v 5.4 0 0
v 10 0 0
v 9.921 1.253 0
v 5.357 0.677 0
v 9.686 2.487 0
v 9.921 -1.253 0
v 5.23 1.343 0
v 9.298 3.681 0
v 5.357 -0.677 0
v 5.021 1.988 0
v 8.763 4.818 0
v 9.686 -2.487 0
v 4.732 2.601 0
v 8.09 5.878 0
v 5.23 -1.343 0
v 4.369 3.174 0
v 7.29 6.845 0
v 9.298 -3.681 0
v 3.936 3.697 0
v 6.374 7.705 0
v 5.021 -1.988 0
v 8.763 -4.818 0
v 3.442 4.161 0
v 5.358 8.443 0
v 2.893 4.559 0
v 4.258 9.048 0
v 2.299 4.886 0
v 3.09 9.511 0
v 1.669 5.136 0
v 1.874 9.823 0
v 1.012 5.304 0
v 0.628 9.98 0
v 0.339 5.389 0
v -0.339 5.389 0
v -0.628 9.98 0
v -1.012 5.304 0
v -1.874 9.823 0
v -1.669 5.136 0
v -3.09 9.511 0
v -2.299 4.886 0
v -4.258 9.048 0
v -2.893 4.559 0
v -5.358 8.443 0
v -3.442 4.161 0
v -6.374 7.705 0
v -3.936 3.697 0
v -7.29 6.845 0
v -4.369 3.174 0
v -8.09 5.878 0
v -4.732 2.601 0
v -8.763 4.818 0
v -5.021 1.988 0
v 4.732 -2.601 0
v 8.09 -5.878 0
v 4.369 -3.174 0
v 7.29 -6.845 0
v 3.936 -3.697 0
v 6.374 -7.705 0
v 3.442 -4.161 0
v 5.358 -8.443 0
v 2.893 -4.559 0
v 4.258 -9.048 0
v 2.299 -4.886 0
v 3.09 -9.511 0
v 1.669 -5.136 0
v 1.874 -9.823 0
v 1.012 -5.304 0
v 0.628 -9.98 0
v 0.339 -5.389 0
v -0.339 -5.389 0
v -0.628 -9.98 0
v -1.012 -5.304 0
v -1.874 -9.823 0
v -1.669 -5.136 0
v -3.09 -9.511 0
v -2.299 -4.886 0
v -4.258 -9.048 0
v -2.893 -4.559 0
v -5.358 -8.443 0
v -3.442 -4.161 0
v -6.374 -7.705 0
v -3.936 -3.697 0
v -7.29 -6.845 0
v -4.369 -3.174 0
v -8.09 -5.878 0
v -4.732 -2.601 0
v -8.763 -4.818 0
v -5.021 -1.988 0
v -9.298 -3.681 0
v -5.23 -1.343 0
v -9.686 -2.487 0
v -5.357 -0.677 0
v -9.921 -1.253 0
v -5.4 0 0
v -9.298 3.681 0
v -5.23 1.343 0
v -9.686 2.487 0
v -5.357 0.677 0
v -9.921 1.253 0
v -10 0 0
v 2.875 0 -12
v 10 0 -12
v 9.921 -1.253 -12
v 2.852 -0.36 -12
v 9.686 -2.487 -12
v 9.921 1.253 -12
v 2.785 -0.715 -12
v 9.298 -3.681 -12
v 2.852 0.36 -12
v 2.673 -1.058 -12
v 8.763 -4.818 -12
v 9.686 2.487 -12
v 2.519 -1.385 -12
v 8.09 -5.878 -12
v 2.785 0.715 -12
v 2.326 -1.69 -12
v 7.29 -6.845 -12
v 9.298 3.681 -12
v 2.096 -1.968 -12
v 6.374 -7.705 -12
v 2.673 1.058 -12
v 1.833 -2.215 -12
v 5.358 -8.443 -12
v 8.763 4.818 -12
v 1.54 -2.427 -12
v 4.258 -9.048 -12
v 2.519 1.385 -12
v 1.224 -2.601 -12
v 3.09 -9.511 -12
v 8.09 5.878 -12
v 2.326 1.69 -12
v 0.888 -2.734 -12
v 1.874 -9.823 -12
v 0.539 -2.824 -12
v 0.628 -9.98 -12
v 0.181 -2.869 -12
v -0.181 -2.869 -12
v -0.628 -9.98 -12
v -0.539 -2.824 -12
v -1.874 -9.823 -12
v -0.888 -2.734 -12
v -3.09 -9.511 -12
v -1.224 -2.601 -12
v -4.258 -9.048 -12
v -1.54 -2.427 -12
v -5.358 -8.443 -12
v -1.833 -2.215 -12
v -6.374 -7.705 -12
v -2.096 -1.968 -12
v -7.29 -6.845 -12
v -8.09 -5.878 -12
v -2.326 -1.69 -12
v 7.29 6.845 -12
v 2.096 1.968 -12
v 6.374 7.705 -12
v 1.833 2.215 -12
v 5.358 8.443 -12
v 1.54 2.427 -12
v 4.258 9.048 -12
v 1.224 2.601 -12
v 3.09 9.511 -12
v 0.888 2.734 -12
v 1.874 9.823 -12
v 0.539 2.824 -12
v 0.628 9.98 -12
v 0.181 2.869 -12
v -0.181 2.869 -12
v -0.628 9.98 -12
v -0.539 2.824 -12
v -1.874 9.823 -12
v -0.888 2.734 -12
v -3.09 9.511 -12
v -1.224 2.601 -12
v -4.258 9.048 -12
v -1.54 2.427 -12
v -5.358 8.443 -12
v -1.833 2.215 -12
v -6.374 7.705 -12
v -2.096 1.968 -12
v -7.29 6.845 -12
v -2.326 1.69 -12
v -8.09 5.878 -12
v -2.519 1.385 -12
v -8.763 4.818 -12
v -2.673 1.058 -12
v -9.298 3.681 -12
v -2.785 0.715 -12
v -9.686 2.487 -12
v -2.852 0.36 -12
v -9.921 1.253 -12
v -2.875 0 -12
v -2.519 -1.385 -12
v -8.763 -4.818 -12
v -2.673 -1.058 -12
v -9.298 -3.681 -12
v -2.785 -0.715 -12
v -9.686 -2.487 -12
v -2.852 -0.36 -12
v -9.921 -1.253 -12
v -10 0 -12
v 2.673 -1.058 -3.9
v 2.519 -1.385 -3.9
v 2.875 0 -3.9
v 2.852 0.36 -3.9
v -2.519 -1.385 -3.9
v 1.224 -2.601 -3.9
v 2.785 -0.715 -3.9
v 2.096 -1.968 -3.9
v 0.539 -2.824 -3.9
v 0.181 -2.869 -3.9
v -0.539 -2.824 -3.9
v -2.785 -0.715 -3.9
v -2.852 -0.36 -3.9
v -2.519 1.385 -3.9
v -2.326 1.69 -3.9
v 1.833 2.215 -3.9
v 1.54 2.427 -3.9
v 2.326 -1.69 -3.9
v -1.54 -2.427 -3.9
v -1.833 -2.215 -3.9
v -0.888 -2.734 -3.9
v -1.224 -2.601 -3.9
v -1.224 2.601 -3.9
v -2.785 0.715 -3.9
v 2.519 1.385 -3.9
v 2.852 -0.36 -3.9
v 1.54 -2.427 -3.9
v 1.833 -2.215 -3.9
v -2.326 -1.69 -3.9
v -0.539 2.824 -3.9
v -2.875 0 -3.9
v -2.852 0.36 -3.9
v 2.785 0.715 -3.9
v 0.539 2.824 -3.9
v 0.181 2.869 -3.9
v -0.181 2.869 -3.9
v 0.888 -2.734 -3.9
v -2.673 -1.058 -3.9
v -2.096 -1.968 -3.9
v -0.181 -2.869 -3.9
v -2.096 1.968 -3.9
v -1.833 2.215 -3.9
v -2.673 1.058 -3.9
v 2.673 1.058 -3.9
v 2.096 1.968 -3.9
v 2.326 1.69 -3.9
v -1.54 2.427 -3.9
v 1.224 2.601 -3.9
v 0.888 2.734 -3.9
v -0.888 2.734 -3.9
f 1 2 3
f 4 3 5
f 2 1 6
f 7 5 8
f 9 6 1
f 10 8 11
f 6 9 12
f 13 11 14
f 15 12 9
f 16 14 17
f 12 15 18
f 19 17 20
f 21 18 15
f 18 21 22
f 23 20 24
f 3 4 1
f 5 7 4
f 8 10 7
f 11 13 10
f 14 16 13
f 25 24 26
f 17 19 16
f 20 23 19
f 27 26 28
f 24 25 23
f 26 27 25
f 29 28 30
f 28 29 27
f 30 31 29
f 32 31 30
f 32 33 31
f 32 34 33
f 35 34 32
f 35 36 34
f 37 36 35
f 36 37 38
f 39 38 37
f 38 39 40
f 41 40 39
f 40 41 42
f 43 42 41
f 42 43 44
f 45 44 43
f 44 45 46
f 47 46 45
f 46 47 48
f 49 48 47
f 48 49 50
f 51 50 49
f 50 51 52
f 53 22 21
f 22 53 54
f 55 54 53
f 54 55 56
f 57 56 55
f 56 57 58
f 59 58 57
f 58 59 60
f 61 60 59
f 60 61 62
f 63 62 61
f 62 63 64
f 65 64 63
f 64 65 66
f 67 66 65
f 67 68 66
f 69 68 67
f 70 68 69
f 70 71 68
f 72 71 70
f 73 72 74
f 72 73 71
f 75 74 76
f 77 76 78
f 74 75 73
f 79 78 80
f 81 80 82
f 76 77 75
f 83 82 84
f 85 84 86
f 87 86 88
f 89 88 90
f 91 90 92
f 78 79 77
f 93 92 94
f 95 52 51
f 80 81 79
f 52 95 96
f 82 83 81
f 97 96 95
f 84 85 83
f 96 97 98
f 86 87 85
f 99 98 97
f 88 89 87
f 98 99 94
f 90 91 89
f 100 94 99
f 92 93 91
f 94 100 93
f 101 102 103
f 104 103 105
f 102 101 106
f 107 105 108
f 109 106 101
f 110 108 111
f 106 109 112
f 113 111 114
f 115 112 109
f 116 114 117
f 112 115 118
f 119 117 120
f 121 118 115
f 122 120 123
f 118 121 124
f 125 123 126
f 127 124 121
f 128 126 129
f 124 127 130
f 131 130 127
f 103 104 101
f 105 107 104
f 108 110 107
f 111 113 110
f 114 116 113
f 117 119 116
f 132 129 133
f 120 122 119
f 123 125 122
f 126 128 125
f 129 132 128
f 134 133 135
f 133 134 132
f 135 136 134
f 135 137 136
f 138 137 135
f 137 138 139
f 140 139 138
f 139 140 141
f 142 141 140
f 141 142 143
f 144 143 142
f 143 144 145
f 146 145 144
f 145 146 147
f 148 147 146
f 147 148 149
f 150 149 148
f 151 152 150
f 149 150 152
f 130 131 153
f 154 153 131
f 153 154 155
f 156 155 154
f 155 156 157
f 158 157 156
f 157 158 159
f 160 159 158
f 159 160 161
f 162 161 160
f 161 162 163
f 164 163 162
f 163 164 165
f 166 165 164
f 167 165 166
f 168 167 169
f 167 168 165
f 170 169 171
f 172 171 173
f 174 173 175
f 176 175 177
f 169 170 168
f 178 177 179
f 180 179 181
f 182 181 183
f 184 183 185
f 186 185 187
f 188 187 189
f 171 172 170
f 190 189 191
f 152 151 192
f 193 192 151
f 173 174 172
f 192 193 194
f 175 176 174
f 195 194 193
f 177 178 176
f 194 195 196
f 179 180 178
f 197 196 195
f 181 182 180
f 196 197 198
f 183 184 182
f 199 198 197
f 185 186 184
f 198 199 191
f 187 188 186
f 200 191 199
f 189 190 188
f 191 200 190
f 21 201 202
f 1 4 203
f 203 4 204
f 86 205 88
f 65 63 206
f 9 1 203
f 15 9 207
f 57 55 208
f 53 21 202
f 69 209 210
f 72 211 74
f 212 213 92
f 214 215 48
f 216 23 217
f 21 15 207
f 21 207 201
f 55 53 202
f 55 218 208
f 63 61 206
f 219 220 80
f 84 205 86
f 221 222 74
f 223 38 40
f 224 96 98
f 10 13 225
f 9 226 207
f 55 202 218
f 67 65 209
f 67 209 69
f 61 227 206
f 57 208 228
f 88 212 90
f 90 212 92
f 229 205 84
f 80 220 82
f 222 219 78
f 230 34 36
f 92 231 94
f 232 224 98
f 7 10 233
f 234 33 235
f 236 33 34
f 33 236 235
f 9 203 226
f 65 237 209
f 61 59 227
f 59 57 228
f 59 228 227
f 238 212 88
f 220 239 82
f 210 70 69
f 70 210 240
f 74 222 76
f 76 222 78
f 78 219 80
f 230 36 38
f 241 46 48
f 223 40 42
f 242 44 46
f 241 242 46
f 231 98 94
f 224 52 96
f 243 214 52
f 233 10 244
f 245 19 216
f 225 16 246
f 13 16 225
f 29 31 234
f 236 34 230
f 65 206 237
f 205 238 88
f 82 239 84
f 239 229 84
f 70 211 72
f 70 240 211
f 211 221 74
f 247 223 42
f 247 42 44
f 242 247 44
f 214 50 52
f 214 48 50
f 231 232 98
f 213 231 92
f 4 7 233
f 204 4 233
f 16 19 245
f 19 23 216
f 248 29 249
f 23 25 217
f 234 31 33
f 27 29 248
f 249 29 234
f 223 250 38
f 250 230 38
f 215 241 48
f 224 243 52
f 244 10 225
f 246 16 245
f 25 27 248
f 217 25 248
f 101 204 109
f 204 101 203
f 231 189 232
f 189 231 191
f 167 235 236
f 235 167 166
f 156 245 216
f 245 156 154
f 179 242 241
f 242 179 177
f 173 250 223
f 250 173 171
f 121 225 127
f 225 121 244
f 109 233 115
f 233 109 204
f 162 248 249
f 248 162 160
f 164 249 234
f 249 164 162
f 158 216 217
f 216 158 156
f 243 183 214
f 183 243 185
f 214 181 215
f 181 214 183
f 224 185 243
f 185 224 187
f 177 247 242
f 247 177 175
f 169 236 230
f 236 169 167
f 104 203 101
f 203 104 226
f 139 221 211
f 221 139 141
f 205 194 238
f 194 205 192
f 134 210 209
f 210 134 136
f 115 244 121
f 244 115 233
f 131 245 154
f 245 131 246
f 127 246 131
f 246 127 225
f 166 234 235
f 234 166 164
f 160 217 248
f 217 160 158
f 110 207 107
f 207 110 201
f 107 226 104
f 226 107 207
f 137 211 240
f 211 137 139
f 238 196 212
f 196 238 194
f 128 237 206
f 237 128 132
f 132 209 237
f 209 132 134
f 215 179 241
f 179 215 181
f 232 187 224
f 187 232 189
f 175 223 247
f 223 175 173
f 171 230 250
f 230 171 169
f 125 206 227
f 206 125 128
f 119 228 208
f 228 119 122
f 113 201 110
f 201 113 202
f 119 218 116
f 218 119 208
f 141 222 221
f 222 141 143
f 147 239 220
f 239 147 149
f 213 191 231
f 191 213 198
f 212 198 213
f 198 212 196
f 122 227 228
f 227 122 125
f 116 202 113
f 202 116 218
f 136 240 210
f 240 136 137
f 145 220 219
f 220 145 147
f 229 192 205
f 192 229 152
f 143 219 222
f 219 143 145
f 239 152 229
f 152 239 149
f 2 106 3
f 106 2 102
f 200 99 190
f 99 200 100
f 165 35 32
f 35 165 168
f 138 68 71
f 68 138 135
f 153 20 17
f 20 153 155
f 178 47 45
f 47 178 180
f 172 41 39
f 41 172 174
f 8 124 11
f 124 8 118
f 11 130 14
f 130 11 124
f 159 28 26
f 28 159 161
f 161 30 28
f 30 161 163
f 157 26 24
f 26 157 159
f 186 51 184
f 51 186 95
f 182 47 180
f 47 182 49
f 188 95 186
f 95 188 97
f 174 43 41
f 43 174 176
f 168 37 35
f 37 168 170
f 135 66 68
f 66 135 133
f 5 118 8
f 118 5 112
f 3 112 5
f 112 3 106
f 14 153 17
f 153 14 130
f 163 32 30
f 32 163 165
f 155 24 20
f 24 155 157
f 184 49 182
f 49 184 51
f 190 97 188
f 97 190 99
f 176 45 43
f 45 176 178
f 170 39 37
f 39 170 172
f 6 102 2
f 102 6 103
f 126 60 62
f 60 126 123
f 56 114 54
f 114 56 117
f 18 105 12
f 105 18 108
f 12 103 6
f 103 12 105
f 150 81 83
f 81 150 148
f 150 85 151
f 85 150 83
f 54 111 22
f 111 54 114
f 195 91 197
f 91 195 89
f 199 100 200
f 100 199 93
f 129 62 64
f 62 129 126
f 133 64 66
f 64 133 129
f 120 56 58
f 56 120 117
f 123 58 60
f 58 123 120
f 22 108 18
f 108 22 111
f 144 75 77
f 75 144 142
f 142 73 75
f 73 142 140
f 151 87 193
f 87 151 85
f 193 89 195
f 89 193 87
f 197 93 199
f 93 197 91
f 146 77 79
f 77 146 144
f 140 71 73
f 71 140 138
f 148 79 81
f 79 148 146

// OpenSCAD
$fn = 50;


difference() {
	union() {
		translate(v = [0, 0, -12.0000000000]) {
			cylinder(h = 12, r = 10.0000000000);
		}
		cylinder(h = 0, r = 20.0000000000);
	}
	union() {
		translate(v = [0, 0, 0]) {
			rotate(a = [0, 0, 0]) {
				difference() {
					union() {
						#translate(v = [0, 0, -12.0000000000]) {
							cylinder(h = 12, r = 2.6000000000);
						}
						#translate(v = [0, 0, -3.9000000000]) {
							cylinder(h = 3.9000000000, r1 = 2.8750000000, r2 = 5.4000000000);
						}
						#translate(v = [0, 0, -12.0000000000]) {
							cylinder(h = 12, r = 2.8750000000);
						}
						#translate(v = [0, 0, -12.0000000000]) {
							cylinder(h = 12, r = 2.6000000000);
						}
					}
					union();
				}
			}
		}
	}
}
